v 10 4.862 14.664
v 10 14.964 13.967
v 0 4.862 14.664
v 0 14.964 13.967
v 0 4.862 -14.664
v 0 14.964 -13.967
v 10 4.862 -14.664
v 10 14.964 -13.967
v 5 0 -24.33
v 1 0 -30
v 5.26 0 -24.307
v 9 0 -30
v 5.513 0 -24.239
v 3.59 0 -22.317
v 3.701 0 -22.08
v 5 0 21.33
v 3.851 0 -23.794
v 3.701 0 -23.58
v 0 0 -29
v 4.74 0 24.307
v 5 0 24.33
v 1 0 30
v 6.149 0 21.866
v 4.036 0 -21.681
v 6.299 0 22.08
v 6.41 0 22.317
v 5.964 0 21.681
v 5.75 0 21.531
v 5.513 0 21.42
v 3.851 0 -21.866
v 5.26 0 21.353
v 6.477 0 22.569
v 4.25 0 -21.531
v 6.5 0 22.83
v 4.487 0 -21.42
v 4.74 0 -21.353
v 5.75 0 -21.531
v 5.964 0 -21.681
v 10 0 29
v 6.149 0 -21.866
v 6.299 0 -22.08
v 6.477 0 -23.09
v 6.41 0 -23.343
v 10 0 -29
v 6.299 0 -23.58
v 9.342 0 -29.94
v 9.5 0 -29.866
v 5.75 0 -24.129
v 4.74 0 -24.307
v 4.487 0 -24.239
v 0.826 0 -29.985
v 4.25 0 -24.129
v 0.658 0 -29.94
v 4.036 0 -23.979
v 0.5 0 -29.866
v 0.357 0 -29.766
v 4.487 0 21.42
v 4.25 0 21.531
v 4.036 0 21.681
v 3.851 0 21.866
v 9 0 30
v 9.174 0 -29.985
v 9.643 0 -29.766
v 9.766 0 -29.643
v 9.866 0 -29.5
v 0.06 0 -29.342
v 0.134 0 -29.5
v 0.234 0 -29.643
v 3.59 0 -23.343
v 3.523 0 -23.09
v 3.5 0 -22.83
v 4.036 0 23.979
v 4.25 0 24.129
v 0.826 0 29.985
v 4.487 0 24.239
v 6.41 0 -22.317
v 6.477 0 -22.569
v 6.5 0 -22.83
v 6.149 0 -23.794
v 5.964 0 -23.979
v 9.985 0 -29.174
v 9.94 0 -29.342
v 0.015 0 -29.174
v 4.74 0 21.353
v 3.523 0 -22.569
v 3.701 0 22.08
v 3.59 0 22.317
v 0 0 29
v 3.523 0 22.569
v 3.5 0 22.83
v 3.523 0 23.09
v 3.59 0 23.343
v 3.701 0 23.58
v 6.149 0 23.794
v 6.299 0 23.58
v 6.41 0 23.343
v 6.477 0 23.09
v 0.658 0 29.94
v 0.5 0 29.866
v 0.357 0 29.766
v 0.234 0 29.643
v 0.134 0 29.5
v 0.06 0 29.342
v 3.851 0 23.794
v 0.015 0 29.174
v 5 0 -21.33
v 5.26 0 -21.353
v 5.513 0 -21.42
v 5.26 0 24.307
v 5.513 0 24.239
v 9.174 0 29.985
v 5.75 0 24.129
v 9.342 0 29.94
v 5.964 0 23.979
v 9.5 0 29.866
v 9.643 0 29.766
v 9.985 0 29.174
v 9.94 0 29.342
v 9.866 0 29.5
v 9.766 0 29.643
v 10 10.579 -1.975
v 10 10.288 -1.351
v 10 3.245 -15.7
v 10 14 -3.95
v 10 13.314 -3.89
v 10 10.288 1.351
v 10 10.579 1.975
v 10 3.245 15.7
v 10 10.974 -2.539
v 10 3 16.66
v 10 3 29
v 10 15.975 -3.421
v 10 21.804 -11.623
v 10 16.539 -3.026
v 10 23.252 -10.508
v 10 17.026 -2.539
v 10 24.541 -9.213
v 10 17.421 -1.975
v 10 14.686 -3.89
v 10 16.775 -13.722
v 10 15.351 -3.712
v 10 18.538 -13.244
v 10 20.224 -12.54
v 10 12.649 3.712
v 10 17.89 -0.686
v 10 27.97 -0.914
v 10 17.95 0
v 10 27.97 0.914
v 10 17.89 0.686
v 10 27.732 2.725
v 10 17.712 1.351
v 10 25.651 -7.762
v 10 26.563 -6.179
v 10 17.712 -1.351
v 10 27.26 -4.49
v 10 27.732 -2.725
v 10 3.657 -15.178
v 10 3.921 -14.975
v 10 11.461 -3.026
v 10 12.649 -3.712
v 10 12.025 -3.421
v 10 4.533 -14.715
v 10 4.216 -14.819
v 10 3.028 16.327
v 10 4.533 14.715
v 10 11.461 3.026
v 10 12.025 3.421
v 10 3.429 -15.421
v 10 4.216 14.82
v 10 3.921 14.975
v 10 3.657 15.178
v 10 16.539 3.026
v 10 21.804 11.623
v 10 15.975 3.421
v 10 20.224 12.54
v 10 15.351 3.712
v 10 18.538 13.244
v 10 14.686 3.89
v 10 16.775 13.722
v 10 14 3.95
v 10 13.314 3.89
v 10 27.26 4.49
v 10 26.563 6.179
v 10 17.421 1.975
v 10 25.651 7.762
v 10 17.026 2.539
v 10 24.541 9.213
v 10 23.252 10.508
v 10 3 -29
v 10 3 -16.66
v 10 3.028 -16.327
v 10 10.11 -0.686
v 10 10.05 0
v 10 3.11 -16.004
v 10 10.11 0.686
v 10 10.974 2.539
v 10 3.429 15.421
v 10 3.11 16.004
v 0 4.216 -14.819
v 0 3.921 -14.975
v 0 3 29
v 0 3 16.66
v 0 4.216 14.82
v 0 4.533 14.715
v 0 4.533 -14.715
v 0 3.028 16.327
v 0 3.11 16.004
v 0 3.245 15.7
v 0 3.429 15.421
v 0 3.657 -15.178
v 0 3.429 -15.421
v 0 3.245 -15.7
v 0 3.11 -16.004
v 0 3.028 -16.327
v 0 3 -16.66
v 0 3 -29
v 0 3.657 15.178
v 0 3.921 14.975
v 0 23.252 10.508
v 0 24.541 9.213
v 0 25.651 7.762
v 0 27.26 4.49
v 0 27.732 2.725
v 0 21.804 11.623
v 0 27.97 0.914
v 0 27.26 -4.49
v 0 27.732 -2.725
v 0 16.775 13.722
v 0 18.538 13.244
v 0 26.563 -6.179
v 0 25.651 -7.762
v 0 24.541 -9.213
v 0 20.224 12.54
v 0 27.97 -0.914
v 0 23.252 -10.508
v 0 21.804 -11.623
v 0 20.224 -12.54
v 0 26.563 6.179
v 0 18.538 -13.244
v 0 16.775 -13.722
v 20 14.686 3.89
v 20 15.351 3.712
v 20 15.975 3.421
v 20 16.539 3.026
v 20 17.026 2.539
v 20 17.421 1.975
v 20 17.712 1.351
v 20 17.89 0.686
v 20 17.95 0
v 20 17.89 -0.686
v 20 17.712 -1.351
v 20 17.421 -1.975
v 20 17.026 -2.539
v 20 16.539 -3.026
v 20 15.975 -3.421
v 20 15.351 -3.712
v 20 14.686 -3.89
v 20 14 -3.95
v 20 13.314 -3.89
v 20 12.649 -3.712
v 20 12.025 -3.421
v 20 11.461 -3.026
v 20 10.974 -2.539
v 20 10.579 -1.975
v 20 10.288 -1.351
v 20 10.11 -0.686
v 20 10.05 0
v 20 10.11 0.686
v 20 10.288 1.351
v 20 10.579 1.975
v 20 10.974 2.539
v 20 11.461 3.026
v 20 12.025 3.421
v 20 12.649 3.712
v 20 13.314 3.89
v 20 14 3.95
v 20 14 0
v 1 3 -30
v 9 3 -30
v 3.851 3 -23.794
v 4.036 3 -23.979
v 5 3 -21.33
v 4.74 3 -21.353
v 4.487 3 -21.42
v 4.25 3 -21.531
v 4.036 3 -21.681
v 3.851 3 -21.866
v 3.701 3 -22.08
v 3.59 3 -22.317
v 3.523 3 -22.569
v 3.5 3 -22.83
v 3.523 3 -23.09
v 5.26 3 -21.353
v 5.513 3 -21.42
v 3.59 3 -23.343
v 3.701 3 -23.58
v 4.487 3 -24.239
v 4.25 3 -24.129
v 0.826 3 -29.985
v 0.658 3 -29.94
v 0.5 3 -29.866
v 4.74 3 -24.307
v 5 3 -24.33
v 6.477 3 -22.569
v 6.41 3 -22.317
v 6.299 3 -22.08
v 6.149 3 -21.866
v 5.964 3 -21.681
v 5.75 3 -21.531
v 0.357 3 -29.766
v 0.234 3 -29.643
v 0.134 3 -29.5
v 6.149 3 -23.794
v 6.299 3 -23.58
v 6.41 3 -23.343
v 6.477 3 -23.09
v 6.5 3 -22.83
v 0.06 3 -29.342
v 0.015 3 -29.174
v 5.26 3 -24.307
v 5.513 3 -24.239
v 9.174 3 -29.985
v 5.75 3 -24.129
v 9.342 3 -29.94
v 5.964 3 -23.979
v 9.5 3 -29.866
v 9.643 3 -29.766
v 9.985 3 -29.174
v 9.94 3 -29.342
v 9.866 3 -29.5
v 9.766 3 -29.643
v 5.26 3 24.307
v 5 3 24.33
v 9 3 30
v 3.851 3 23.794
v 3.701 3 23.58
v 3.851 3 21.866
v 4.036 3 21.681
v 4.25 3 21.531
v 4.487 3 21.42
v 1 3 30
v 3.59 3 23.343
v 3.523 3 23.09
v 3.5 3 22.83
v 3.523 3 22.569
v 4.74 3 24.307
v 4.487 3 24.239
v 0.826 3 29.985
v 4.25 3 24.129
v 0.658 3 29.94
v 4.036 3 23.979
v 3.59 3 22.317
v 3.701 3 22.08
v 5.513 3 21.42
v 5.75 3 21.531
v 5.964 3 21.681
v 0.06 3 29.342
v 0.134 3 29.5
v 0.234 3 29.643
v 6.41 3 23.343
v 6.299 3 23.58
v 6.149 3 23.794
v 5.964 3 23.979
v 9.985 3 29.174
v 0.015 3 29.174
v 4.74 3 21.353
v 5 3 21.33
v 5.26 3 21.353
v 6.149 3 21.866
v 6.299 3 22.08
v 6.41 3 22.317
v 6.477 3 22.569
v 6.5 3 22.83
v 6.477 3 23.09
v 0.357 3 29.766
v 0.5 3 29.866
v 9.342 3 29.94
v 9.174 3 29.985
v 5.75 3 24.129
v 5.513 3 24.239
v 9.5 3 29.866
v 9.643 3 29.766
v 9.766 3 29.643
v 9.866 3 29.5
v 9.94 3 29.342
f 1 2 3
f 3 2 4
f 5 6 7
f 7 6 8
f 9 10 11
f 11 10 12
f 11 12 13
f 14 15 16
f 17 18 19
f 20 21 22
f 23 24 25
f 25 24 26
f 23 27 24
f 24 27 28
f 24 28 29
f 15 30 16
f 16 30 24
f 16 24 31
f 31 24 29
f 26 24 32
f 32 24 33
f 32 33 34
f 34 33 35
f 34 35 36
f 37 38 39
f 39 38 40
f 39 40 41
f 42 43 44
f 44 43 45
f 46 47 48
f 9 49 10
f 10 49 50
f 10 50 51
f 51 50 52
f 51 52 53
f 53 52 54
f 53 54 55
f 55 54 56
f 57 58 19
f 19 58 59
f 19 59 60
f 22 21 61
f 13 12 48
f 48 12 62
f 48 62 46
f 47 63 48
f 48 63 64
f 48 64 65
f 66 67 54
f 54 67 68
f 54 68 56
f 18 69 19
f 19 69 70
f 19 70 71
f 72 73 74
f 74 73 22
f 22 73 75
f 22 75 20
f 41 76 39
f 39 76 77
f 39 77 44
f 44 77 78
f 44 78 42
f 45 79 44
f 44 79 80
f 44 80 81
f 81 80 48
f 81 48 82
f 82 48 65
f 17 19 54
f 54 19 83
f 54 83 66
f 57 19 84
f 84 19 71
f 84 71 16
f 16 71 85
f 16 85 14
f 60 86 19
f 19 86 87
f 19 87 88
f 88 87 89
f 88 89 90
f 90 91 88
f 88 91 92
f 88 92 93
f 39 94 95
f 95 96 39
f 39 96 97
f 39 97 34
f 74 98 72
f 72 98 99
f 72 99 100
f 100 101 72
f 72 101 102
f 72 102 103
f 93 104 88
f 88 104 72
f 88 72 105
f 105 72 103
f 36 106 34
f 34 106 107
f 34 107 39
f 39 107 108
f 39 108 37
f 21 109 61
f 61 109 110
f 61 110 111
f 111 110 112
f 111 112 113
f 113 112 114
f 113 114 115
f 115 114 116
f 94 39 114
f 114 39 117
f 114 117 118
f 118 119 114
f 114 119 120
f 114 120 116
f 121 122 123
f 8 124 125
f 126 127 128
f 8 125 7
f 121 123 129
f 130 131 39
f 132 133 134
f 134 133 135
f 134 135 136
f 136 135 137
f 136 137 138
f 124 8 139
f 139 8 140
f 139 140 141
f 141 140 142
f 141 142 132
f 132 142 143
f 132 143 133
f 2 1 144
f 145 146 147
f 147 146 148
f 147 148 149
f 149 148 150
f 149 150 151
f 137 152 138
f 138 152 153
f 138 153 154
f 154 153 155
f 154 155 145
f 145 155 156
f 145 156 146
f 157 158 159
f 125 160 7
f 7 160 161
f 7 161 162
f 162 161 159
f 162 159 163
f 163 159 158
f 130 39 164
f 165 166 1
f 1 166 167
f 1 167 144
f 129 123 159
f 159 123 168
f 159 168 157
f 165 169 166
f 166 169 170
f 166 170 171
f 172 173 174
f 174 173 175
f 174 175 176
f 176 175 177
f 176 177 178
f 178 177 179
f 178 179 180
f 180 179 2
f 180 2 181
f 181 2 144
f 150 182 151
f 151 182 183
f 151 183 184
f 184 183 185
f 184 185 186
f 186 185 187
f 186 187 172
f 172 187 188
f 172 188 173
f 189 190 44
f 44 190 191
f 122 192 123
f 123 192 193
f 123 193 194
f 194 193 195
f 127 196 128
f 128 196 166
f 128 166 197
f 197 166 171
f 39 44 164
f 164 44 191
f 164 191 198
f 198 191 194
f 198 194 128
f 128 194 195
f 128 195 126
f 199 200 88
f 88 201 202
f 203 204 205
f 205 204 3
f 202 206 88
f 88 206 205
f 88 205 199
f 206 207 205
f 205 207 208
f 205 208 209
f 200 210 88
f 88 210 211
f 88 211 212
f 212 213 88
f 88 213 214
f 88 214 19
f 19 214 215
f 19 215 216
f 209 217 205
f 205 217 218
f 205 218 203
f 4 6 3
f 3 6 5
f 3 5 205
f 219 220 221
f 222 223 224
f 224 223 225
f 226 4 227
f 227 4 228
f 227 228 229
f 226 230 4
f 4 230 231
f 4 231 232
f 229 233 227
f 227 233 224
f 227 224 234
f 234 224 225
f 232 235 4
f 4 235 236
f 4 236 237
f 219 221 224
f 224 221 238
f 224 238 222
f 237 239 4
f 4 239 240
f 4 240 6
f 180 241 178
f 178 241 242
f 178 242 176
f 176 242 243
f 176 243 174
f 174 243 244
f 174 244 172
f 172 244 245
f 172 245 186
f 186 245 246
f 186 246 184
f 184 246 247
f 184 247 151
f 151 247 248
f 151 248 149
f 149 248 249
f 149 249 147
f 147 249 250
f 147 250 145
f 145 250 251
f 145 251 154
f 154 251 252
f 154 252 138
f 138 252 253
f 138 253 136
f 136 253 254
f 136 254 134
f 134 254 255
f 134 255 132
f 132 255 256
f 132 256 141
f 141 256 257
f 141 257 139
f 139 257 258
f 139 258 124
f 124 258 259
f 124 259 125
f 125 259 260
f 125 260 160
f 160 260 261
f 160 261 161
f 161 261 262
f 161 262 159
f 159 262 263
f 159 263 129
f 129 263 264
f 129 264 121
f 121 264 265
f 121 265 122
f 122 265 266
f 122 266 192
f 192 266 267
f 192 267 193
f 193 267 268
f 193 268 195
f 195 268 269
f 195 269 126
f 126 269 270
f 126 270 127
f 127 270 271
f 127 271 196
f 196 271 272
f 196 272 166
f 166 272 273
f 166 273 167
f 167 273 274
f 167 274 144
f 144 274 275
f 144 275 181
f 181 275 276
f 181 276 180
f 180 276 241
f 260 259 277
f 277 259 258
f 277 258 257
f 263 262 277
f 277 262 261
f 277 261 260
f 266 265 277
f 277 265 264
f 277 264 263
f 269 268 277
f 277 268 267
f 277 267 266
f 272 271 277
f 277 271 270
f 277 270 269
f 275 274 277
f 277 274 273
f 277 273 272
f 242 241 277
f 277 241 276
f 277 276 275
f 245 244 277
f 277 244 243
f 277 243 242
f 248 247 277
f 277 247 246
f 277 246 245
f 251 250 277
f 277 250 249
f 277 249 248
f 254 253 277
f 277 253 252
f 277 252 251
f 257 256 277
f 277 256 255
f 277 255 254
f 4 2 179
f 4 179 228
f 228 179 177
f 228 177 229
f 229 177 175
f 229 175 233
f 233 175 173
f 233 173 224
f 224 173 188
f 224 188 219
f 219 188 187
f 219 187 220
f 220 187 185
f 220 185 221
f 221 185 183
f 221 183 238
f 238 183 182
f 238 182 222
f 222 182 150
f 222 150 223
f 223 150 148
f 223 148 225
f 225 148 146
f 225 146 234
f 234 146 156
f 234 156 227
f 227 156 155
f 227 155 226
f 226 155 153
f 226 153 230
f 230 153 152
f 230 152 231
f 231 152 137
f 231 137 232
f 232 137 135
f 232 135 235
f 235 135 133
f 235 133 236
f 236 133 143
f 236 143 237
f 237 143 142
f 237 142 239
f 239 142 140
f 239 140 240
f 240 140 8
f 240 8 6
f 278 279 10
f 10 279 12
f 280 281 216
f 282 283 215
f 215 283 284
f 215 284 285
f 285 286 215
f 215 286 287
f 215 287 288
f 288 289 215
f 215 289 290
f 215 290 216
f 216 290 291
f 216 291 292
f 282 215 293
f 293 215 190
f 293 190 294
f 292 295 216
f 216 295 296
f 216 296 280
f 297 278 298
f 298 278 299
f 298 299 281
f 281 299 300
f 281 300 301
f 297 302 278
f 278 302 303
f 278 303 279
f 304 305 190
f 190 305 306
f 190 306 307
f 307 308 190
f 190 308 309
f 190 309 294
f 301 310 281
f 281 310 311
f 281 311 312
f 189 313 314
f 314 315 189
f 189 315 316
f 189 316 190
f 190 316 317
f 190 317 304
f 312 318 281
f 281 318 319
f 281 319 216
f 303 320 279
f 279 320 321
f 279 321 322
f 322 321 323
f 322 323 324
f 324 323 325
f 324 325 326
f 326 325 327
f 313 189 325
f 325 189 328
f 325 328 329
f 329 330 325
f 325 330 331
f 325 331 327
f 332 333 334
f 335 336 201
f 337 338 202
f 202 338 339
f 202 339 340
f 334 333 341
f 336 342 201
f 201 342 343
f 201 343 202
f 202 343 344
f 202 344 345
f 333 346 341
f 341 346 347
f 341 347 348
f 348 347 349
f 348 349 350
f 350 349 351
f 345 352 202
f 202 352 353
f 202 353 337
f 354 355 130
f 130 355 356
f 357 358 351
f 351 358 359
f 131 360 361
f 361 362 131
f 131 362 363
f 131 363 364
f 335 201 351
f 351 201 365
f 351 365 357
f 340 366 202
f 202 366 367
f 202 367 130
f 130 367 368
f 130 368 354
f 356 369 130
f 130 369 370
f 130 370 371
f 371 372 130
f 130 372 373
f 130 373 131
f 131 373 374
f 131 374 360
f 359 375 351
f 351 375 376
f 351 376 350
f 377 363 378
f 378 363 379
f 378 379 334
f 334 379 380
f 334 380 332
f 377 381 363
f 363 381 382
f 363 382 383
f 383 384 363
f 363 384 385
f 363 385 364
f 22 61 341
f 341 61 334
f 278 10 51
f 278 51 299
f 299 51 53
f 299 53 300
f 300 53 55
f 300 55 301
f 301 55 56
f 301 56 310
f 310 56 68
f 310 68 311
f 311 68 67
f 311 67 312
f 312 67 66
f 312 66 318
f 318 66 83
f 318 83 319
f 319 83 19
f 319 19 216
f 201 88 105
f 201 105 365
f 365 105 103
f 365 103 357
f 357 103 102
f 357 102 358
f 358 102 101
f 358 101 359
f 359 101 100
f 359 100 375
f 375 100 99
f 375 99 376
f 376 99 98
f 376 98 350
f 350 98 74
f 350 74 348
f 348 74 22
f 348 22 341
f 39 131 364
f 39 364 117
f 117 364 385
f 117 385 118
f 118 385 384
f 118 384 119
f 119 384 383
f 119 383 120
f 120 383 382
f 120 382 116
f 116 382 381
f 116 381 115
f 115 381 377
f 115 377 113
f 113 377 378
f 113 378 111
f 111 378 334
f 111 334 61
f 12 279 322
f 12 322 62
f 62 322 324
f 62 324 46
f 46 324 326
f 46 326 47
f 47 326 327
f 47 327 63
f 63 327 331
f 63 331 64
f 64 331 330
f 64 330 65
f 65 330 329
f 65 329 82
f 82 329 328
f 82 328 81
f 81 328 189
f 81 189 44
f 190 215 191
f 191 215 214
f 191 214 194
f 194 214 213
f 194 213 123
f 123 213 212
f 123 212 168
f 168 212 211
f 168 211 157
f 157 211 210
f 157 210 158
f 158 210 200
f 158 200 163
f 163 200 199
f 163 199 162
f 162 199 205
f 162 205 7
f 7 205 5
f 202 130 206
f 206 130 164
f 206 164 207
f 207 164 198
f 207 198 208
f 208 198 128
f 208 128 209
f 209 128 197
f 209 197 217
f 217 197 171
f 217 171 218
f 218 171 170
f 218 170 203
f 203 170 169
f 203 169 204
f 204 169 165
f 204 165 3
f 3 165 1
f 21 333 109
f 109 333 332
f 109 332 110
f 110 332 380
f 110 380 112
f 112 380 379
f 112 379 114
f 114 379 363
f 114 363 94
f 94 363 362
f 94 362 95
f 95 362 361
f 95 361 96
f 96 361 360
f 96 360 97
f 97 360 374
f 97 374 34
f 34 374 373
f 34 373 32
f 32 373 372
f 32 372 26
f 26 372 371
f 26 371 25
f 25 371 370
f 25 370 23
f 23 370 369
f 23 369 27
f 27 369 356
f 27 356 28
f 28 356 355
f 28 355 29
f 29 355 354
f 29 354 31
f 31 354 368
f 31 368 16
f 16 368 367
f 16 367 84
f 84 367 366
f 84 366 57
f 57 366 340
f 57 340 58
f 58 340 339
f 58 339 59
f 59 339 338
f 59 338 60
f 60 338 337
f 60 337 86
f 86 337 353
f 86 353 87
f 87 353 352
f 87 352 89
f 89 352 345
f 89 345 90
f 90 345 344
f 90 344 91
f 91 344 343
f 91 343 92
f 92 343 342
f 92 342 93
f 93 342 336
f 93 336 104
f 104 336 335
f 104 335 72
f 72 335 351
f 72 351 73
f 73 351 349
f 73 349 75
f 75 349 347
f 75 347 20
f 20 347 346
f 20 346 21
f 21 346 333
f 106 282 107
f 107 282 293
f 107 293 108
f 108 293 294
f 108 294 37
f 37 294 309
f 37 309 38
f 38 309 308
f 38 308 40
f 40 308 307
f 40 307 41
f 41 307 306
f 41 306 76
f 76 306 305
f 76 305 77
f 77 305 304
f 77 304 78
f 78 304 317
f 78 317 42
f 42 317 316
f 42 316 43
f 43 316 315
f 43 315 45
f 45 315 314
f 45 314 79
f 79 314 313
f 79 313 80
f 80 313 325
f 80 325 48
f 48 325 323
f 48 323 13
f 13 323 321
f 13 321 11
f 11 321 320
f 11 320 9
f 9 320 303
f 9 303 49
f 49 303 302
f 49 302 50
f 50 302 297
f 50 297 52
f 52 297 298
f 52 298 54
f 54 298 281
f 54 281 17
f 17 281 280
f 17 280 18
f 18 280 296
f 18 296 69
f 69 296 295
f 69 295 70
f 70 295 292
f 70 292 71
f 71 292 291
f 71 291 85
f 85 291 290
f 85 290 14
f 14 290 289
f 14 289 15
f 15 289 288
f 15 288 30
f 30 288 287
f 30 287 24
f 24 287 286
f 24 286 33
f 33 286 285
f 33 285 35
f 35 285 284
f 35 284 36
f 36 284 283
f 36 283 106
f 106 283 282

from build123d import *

# Parameters (mm, degrees)
BOSS_EXTRUDE1_DEPTH = 10
SKETCH2_R           = 3.95
BOSS_EXTRUDE2_DEPTH = 10
BOSS_EXTRUDE3_DEPTH = 10
SKETCH5_W           = 10
SKETCH5_H           = 60
BOSS_EXTRUDE4_DEPTH = 3
FILLET1_R           = 1
FILLET2_R           = 2
SKETCH7_R           = 1.5
CUT_EXTRUDE1_DEPTH  = 3


with BuildPart() as part:
    # Sketch1 → Boss-Extrude1 (new body)
    with BuildSketch(Plane(origin=(0, 0, 0), x_dir=(0, 0, -1), z_dir=(1, 0, 0))):
        with BuildLine():
            Line((-15, 0), (15, 0))
            Line((15, 0), (9.520917343, 17.058125725))
            ThreePointArc((9.520917343, 17.058125725), (0, 24), (-9.520917343, 17.058125725))
            Line((-9.520917343, 17.058125725), (-15, 0))
        make_face()
    extrude(amount=BOSS_EXTRUDE1_DEPTH)

    # Sketch2 → Boss-Extrude2 (add)
    with BuildSketch(Plane(origin=(10, 0, 0), x_dir=(0, 0, -1), z_dir=(1, 0, 0))):
        with Locations((0, 14)):
            Circle(SKETCH2_R)
    extrude(amount=BOSS_EXTRUDE2_DEPTH)

    # Sketch4 → Boss-Extrude3 (add)
    with BuildSketch(Plane(origin=(10, 0, 0), x_dir=(0, 0, -1), z_dir=(1, 0, 0))):
        with BuildLine():
            Line((9.520917343, 17.058125725), (15, 0))
            Line((15, 0), (13.966745843, 14.964370546))
            ThreePointArc((13.966745843, 14.964370546), (0, 28), (-13.966745843, 14.964370546))
            Line((-13.966745843, 14.964370546), (-15, 0))
            Line((-15, 0), (-9.520917343, 17.058125725))
            ThreePointArc((-9.520917343, 17.058125725), (0, 24), (9.520917343, 17.058125725))
        make_face()
    extrude(amount=-BOSS_EXTRUDE3_DEPTH)

    # Sketch5 → Boss-Extrude4 (add)
    with BuildSketch(Plane.XZ):
        with Locations((5, 0)):
            Rectangle(SKETCH5_W, SKETCH5_H)
    extrude(amount=-BOSS_EXTRUDE4_DEPTH)

    # Fillet1
    fillet1_edges = [part.edges().sort_by_distance(p)[0] for p in [
        (10, 1.5, 30),
        (0, 1.5, -30),
        (0, 1.5, 30),
        (10, 1.5, -30),
    ]]
    fillet(fillet1_edges, radius=FILLET1_R)

    # Fillet2
    fillet2_edges = [part.edges().sort_by_distance(p)[0] for p in [
        (5, 3, -14.792857143),
        (5, 3, 14.792857143),
    ]]
    fillet(fillet2_edges, radius=FILLET2_R)

    # Sketch7 → Cut-Extrude1 (cut)
    with BuildSketch(Plane(origin=(0, 3, 0), x_dir=(1, 0, 0), z_dir=(0, 1, 0))):
        with Locations((5, 22.829761905)):
            Circle(SKETCH7_R)
        with Locations((5, -22.829761905)):
            Circle(SKETCH7_R)
    extrude(amount=-CUT_EXTRUDE1_DEPTH, mode=Mode.SUBTRACT)


solid = part.part
